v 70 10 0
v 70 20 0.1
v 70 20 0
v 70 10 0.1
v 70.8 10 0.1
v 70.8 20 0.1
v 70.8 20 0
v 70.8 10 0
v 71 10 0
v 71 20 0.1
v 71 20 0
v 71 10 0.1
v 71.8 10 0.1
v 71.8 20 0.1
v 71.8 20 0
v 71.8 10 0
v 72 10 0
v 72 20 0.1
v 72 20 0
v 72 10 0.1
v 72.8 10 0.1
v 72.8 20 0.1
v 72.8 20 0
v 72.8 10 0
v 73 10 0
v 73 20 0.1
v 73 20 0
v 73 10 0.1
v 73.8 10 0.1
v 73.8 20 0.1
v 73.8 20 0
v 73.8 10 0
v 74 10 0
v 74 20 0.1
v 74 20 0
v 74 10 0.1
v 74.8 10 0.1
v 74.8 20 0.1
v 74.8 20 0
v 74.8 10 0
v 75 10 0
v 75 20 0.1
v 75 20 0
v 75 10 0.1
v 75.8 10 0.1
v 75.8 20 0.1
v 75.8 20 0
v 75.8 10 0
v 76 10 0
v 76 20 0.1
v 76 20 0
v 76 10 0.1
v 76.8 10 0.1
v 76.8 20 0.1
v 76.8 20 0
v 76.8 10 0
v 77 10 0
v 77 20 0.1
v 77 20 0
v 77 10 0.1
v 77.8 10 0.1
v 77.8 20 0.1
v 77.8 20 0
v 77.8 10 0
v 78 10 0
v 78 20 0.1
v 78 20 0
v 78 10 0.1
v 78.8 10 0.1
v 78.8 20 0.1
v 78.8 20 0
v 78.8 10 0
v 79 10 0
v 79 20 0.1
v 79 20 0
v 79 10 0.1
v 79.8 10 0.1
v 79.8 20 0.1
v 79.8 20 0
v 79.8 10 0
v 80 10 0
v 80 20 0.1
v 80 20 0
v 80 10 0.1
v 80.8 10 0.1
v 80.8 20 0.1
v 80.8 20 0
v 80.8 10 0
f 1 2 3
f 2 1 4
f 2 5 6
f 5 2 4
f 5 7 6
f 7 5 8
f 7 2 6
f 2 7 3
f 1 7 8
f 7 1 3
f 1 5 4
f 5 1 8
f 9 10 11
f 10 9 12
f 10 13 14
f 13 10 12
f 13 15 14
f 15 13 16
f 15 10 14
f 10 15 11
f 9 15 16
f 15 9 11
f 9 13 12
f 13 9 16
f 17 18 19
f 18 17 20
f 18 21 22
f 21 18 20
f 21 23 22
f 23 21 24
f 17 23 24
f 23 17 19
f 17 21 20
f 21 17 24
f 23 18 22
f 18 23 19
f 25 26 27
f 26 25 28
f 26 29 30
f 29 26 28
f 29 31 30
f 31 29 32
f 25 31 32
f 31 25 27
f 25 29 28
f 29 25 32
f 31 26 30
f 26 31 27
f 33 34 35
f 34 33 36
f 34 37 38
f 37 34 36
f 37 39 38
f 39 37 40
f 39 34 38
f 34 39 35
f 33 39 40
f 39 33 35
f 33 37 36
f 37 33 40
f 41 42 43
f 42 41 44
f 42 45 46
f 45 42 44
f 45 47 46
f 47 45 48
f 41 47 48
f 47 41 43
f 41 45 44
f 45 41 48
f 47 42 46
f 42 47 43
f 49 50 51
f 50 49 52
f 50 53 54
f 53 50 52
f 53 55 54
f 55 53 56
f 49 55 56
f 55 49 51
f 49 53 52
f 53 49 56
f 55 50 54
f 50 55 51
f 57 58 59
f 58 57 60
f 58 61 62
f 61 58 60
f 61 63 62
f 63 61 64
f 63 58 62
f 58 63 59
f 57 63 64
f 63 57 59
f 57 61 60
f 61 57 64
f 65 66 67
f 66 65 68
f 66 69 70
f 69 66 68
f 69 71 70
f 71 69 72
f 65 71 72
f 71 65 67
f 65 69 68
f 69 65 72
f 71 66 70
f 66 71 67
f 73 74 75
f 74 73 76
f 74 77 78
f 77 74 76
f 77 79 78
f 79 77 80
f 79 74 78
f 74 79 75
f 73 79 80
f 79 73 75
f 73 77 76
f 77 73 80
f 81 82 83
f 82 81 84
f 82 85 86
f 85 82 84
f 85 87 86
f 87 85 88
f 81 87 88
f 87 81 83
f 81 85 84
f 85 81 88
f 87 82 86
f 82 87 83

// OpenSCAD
translate([10+60,10+0,0])
        for (i = [0 : 10]){
            translate([i,0,0])
                cube(size = [0.8,10,0.1]);
    }
